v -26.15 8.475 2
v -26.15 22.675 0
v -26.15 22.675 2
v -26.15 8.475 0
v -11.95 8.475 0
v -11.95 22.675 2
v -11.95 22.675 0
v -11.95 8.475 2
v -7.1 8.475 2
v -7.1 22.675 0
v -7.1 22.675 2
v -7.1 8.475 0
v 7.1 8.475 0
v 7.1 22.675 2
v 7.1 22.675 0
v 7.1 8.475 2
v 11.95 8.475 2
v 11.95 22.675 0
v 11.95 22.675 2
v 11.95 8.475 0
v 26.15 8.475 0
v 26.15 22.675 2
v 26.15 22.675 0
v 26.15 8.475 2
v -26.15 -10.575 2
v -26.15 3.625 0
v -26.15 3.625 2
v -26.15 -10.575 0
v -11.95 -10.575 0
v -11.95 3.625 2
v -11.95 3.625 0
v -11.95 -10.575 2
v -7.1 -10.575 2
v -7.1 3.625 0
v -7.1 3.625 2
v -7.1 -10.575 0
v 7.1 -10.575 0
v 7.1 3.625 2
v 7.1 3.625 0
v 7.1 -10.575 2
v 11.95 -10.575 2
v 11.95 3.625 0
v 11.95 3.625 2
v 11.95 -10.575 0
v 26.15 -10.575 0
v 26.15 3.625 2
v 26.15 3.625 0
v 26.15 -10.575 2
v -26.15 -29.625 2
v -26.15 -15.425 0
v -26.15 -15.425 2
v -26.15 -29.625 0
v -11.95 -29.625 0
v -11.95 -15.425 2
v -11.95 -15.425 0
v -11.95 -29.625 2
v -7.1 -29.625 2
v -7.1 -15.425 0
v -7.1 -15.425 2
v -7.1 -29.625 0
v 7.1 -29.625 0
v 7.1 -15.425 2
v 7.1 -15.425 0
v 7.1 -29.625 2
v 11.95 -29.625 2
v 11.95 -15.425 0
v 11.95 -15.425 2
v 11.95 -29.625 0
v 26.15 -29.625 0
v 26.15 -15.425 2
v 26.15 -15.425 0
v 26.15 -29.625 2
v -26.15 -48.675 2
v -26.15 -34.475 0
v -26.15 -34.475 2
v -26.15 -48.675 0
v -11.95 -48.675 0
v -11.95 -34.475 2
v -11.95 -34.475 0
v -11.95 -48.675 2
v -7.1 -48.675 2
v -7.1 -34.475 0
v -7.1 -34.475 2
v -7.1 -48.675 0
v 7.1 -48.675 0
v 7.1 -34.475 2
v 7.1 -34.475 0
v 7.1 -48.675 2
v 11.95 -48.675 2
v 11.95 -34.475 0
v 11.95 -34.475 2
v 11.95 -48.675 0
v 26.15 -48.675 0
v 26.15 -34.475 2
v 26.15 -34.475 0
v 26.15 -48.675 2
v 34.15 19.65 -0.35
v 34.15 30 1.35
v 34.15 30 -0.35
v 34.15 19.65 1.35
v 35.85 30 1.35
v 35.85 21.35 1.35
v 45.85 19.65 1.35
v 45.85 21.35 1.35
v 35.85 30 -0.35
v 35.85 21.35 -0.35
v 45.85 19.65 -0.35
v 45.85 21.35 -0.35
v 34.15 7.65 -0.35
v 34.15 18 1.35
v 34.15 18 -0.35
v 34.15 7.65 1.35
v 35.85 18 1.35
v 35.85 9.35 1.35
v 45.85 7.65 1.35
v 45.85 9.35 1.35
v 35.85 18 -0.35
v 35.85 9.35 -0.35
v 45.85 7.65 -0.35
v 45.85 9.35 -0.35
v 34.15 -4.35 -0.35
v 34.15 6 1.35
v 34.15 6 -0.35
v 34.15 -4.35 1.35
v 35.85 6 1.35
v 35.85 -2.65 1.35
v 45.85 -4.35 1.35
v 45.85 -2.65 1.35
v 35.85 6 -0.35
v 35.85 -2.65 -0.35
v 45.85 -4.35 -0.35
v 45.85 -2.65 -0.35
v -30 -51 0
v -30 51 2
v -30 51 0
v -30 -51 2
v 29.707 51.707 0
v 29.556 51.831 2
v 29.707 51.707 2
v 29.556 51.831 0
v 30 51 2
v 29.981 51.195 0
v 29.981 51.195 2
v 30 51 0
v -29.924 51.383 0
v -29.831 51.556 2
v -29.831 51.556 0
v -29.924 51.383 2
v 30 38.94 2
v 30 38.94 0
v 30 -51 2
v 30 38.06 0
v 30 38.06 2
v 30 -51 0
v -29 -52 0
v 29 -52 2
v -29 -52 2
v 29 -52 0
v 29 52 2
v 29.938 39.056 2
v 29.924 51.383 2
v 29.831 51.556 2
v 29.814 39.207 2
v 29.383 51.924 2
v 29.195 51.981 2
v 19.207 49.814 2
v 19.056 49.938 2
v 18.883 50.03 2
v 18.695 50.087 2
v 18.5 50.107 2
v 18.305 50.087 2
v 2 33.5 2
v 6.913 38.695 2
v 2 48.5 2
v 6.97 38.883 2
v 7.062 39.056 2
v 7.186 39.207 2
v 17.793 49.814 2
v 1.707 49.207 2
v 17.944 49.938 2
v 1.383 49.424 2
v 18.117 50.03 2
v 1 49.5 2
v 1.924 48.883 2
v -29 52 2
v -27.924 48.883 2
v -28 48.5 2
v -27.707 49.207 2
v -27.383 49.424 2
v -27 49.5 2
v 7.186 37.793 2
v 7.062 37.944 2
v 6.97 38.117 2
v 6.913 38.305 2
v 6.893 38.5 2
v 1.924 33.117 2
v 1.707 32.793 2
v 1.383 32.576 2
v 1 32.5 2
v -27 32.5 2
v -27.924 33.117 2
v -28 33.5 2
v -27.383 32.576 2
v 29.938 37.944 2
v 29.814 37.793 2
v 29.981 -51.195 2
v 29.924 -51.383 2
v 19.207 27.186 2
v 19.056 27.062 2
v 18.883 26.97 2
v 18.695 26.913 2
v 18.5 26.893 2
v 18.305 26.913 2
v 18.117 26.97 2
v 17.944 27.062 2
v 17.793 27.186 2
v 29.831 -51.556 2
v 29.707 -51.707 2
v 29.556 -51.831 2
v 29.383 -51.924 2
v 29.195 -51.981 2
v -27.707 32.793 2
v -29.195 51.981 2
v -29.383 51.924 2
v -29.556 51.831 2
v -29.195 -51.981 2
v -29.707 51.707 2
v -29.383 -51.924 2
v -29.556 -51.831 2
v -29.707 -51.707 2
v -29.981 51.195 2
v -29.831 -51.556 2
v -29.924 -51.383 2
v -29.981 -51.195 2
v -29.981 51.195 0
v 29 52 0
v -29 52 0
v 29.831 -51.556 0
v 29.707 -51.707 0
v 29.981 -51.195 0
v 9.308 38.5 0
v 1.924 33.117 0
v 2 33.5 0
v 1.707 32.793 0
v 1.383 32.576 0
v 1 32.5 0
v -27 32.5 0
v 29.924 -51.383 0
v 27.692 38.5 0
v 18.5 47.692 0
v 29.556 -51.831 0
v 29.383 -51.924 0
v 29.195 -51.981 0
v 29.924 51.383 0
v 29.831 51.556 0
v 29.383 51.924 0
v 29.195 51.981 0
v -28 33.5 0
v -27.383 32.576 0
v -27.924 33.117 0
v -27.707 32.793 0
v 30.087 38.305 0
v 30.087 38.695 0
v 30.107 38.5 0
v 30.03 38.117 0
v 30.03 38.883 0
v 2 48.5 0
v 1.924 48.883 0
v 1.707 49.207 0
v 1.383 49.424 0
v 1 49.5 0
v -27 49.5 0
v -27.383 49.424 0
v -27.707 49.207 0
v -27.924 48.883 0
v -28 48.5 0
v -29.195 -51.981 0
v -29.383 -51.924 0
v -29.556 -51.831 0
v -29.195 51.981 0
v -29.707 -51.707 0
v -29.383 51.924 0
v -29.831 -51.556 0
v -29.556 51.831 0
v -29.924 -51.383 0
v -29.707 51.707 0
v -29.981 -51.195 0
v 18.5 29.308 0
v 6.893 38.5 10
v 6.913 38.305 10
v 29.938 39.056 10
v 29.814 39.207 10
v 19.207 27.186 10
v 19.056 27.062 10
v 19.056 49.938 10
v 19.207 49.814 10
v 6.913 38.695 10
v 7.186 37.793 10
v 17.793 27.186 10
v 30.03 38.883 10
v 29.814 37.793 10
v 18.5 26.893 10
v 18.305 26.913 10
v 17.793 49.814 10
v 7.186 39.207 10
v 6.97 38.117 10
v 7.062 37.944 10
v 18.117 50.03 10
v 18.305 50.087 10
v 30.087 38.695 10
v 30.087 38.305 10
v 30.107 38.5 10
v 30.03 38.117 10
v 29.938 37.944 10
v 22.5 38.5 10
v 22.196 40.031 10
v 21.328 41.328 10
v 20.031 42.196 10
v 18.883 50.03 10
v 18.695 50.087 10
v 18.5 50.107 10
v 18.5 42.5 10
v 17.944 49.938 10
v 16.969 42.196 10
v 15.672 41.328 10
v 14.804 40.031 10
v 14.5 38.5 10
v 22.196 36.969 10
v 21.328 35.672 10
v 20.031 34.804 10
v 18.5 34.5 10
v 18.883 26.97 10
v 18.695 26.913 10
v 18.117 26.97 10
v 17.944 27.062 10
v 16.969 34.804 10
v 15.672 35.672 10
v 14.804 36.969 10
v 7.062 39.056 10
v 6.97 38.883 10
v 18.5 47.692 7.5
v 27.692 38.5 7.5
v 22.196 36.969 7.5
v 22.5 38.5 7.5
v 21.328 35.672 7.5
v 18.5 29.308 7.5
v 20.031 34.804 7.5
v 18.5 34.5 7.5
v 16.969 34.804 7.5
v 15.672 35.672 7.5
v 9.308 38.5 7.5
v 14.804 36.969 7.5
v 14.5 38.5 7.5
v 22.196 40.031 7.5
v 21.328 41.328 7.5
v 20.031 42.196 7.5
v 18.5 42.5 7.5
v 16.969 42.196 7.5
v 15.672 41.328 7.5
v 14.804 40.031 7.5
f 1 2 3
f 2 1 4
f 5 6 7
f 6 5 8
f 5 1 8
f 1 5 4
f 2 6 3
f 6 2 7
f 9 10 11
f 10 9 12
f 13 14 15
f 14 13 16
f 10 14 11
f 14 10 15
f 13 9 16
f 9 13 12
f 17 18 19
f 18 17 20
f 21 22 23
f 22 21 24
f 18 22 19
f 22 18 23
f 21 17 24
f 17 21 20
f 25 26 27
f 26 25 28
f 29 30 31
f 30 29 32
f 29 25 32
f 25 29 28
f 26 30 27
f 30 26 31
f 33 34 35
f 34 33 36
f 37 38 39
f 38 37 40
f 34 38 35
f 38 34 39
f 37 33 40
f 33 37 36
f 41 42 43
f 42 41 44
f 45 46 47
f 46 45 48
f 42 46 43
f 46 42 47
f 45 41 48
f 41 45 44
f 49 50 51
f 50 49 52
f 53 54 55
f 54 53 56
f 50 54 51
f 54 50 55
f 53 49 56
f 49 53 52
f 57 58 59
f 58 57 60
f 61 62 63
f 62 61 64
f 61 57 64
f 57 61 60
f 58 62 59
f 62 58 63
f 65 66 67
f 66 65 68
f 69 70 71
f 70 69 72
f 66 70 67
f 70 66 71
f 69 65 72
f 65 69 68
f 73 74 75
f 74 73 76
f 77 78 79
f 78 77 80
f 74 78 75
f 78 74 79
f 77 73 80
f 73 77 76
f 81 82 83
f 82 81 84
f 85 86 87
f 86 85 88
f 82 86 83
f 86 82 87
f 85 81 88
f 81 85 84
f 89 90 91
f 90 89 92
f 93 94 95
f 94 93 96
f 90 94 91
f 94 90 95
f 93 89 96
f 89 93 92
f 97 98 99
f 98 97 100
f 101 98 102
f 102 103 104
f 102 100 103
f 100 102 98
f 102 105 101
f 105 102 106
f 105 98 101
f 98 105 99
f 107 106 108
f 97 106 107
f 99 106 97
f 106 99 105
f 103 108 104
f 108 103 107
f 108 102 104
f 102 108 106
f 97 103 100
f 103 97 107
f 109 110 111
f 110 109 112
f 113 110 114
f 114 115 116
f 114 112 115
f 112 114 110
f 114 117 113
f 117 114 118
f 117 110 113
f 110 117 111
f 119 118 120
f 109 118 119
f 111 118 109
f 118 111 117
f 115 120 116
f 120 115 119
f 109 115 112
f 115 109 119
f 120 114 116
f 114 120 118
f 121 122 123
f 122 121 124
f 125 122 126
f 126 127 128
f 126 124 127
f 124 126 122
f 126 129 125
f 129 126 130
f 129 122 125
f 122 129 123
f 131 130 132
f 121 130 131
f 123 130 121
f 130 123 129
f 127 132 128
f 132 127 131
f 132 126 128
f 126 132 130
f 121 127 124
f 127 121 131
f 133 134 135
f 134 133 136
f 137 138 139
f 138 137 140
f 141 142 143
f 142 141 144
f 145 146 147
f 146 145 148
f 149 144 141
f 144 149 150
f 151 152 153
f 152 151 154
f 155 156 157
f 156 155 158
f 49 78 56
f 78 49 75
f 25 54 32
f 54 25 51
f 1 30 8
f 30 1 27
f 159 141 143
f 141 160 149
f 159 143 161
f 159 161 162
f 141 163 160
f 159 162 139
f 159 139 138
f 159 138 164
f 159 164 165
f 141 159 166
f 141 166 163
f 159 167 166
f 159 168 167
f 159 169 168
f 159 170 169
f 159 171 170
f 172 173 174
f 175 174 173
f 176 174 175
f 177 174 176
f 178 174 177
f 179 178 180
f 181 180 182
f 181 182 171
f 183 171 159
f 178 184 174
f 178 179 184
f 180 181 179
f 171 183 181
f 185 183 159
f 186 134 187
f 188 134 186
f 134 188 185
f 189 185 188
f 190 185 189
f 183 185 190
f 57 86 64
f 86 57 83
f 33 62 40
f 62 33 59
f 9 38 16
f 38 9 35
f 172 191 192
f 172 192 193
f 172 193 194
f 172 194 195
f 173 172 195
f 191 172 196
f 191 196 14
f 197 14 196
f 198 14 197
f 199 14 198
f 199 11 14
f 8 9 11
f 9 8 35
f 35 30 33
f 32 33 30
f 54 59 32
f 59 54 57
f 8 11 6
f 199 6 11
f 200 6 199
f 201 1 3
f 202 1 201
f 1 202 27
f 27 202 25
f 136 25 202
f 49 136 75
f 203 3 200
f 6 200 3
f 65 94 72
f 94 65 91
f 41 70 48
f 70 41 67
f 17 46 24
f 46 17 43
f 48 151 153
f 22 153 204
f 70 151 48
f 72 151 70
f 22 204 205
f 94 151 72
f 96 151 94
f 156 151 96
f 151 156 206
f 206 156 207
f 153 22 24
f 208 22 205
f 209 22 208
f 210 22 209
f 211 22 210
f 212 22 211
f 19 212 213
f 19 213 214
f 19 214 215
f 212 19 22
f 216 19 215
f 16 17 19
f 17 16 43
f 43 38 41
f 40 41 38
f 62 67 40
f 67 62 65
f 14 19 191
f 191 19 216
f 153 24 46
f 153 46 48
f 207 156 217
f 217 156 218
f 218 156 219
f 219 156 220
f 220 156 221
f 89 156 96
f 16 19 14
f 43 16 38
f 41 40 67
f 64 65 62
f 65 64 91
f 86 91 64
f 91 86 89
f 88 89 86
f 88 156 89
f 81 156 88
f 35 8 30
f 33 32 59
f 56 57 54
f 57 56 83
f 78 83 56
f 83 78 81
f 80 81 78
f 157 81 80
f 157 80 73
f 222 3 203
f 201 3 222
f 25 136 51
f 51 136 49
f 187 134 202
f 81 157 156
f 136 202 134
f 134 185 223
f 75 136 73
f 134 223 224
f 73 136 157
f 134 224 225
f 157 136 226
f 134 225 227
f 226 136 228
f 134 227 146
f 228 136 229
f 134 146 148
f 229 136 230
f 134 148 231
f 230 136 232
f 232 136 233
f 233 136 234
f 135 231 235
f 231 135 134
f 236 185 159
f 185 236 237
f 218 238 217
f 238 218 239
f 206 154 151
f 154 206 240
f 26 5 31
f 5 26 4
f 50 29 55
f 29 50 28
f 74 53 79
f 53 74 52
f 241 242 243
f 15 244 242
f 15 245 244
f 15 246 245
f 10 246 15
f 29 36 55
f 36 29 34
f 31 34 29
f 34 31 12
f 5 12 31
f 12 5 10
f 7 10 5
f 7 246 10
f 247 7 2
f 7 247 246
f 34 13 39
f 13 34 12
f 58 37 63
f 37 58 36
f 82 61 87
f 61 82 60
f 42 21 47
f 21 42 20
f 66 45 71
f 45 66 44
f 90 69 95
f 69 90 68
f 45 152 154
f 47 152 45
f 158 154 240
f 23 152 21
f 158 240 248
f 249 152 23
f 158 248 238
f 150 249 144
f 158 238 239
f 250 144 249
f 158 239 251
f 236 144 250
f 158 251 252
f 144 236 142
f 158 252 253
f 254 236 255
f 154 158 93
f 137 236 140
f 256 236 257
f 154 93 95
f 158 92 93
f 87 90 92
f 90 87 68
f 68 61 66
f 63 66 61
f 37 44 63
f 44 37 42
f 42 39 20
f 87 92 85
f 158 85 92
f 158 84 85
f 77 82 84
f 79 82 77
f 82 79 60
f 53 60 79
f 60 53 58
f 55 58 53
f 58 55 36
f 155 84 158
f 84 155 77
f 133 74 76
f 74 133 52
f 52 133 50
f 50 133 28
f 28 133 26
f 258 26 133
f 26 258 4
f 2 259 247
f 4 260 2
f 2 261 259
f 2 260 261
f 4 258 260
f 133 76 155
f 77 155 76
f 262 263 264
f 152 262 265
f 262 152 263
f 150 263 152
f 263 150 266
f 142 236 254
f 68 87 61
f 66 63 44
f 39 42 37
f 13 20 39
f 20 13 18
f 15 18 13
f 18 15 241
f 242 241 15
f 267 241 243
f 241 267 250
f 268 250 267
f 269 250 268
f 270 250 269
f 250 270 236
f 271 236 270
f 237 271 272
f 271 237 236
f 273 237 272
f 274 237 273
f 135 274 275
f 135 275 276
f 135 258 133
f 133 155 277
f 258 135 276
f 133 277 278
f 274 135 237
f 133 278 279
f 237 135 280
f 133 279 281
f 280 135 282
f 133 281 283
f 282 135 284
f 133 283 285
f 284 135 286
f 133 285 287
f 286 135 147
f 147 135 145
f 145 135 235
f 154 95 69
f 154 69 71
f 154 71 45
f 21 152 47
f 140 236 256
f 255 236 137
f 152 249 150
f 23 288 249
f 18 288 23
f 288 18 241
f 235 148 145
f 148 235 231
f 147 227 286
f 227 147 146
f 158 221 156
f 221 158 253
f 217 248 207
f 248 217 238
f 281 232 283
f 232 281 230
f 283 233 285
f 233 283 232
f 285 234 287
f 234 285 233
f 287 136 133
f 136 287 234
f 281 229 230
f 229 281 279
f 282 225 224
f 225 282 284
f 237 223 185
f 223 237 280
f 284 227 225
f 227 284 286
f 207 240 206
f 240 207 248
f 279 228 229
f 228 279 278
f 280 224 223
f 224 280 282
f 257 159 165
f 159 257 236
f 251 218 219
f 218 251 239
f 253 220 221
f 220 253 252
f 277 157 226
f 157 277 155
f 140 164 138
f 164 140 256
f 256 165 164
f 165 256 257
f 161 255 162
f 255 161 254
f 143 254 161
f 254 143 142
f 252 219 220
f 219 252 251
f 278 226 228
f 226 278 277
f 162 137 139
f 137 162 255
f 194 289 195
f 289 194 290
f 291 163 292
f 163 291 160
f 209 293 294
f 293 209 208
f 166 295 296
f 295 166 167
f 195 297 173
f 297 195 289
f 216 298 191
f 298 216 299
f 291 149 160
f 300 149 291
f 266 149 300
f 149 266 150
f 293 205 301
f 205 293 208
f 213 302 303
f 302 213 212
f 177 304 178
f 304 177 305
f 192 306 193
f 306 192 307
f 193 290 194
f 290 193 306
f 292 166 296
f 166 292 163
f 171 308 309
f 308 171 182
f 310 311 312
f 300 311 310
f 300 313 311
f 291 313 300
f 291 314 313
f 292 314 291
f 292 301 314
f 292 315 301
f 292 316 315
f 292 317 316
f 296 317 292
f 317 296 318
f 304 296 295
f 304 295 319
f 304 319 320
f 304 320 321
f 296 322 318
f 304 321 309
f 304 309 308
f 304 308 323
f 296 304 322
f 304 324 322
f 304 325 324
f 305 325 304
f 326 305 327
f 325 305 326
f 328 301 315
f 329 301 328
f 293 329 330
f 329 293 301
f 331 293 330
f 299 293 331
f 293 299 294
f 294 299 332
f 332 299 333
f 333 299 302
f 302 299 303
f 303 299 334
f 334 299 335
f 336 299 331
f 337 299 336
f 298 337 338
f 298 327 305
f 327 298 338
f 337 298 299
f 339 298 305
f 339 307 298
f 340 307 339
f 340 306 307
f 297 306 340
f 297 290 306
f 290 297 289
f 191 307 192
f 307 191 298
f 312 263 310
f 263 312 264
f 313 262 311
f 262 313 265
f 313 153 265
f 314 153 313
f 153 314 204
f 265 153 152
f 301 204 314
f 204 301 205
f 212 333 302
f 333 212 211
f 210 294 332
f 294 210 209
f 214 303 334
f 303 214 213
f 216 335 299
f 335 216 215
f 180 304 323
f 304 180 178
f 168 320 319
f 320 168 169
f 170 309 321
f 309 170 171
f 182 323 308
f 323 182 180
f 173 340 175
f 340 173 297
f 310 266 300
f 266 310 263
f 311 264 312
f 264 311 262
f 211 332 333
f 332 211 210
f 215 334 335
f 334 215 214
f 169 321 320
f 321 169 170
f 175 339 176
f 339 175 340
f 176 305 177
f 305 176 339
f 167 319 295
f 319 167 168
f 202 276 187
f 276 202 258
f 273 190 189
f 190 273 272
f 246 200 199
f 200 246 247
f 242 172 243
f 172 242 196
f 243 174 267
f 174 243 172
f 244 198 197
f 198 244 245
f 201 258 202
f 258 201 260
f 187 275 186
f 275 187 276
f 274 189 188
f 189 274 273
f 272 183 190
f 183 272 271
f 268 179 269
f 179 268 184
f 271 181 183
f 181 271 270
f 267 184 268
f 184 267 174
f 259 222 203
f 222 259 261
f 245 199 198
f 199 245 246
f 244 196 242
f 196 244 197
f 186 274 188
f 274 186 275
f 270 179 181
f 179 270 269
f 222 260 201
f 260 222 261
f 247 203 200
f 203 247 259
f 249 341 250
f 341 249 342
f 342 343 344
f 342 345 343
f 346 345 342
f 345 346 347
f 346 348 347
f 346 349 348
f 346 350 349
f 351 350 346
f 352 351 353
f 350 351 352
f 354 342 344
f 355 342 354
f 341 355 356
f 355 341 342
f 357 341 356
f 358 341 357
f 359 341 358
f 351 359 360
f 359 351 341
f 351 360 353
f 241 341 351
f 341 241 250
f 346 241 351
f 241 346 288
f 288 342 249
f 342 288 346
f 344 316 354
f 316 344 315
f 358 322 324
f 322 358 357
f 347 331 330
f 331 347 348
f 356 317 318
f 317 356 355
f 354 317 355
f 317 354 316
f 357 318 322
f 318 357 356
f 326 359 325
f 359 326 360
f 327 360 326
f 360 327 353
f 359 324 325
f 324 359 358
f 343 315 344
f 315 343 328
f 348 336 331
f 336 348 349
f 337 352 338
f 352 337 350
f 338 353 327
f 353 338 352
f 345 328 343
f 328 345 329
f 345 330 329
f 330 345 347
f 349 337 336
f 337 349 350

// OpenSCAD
// MacroPad RP2040 Top Cover
// Parametric design for Adafruit MacroPad RP2040 keyboard controller
// Author: Generated for CircuitPython EVM Controller project
// License: MIT

// Cheatsheet: https://openscad.org/cheatsheet/index.html?version=2021.01

// =============================================================================
// PARAMETERS - Easy to modify for different requirements
// =============================================================================

// RP2040 PCB parameters
pcb_length = 105;          // RP2040 PCB length (mm)
pcb_width = 60;            // RP2040 PCB width (mm)
pcb_thickness = 1.6;       // Standard PCB thickness (mm)
pcb_clearance = 1;         // Space around PCB (mm)
pcb_height_clearance = 8;  // Space above PCB for components (mm)

// Overall cover dimensions
cover_length = 60;         // Total length of cover (mm)
cover_width = 105 - 1;   // Total width of cover (mm)  
cover_thickness = 2;       // Thickness of top plate (mm)
corner_radius = 1;         // Rounded corner radius (mm)

// Key switch parameters (Cherry MX compatible)
key_switch_size = 14;      // Square hole size for key switches (mm)
key_switch_spacing = 19.05; // Center-to-center spacing (0.75" standard)
key_rows = 4;              // Number of rows
key_cols = 3;              // Number of columns

// Key switch grid positioning (relative to cover center)
keys_offset_x = 0;         // X offset of key grid center
keys_offset_y = -13;     // Y offset of key grid center (negative = toward bottom)

// LCD/OLED display parameters
lcd_width = 30;            // Width of LCD cutout (mm)
lcd_height = 17;           // Height of LCD cutout (mm)
lcd_corner_radius = 1;     // Corner radius for LCD hole
lcd_offset_x = -13;        // X position relative to center
lcd_offset_y = 41;         // Y position relative to center (positive = toward top)

// Rotary encoder parameters and relative to shaft center
encoder_shaft_diameter = 6;
encoder_size = 13;         // Square hole size for encoder + 1 mm space(mm)
encoder_offset_x = 18.5;   // X position relative to center
encoder_offset_y = 38.5;   // Y position relative to center
encoder_shaft_z = 10;      // Encoder shaft height
encoder_shaft_clearance = 2; // General clearance for 3D printing (mm)

shaft_wall_width= 2;       // 
shaft_corner_radius = 1;   // Corner radius for encoder hole

// Mounting and clearance
wall_thickness = 2;        // Wall thickness for sides (if adding later)
clearance = 0.2;           // General clearance for 3D printing (mm)

// Cover support lips
support_lip = [3, 4, 1];    // Lightly clicks cover into case

// Cover support strip
support_strip_z = 1.7;
support_strip_x = [support_strip_z, 10, support_strip_z];  // Support strip to prevent top cover movement when touched
support_strip_y = [11.7, support_strip_z, support_strip_z];

// =============================================================================
// MAIN OBJECT
// =============================================================================

difference() {
        
    // Base cover plate
    base_cover();
    
    // Cut out holes for key switches
    key_switch_holes();
    
    // Cut out hole for LCD/OLED
    lcd_hole();
    
    // Cut out hole for rotary encoder
    encoder_shaft_hole();                        

    // Cut out encoder shaft hole
    encoder_round_hole();
        
}

// Optional: Show key switch positions for reference (comment out for final print)
// %key_switch_positions(); // The % makes it transparent/reference only

// =============================================================================
// MODULES (Functions)
// =============================================================================

// Create the base cover plate with rounded corners
module base_cover() {
    
    union() {
        // Using hull() with corner cylinders to create rounded rectangle
        hull() {
            // Four corner cylinders to create rounded rectangle
            translate([-(cover_length/2 - corner_radius), -(cover_width/2 - corner_radius), 0])
                cylinder(h = cover_thickness, r = corner_radius, $fn = 32);
            
            translate([+(cover_length/2 - corner_radius), -(cover_width/2 - corner_radius), 0])
                cylinder(h = cover_thickness, r = corner_radius, $fn = 32);
            
            translate([+(cover_length/2 - corner_radius), +(cover_width/2 - corner_radius), 0])
                cylinder(h = cover_thickness, r = corner_radius, $fn = 32);
            
            translate([-(cover_length/2 - corner_radius), +(cover_width/2 - corner_radius), 0])
                cylinder(h = cover_thickness, r = corner_radius, $fn = 32);
        }
        
        // Wrap the open encoder shaft
        encoder_shaft_wrap();                

        // Place support strip below case cover 
        cover_support_strip();
        
    }
}

// Create all key switch holes in a 3x4 matrix
module key_switch_holes() {
    // Calculate starting position for grid (top-left key)
    start_x = keys_offset_x - (key_switch_spacing * (key_cols - 1) / 2);
    start_y = keys_offset_y + (key_switch_spacing * (key_rows - 1) / 2);
    
    // Create grid of holes
    for (row = [0 : key_rows - 1]) {
        for (col = [0 : key_cols - 1]) {
            translate([
                start_x + (col * key_switch_spacing),
                start_y - (row * key_switch_spacing),
                -0.5  // Extend slightly below surface for clean cut
            ]) {
                // Square hole for key switch
                cube([
                    key_switch_size + clearance,
                    key_switch_size + clearance,
                    cover_thickness + 5
                ], center = true);
            }
        }
    }
}

// Create LCD/OLED display hole
module lcd_hole() {
    translate([lcd_offset_x, lcd_offset_y, -0.5]) {
        // Rounded rectangle hole for LCD
        hull() {
            // Four corner cylinders for rounded rectangle
            translate([-(lcd_width/2 - lcd_corner_radius), -(lcd_height/2 - lcd_corner_radius), 0])
                cylinder(h = cover_thickness + 1, r = lcd_corner_radius, $fn = 16);
            
            translate([+(lcd_width/2 - lcd_corner_radius), -(lcd_height/2 - lcd_corner_radius), 0])
                cylinder(h = cover_thickness + 1, r = lcd_corner_radius, $fn = 16);
            
            translate([+(lcd_width/2 - lcd_corner_radius), +(lcd_height/2 - lcd_corner_radius), 0])
                cylinder(h = cover_thickness + 1, r = lcd_corner_radius, $fn = 16);
            
            translate([-(lcd_width/2 - lcd_corner_radius), +(lcd_height/2 - lcd_corner_radius), 0])
                cylinder(h = cover_thickness + 1, r = lcd_corner_radius, $fn = 16);
        }
    }
}


// Reference module to show key switch positions (for design verification)
module key_switch_positions() {
    // Calculate starting position for grid
    start_x = keys_offset_x - (key_switch_spacing * (key_cols - 1) / 2);
    start_y = keys_offset_y + (key_switch_spacing * (key_rows - 1) / 2);
    
    // Show key positions with small cylinders
    for (row = [0 : key_rows - 1]) {
        for (col = [0 : key_cols - 1]) {
            translate([
                start_x + (col * key_switch_spacing),
                start_y - (row * key_switch_spacing),
                cover_thickness
            ]) {
                cylinder(h = 2, r = 1, $fn = 8);
                
                // Optional: Add text labels for key numbers
                translate([0, 0, 2]) {
                    linear_extrude(height = 0.5) {
                        text(
                            str(row * key_cols + col), 
                            size = 3, 
                            halign = "center", 
                            valign = "center"
                        );
                    }
                }
            }
        }
    }
}

// Create rotary encoder hole through cover base and shaft cibe
module encoder_shaft_wrap() {
    
    encoder_z = encoder_shaft_z - shaft_wall_width;  // 2mm Shaft top cover
    
    translate([encoder_offset_x, encoder_offset_y, 0]) {
        // Square hole with slightly rounded corners for encoder
        rotate(45) hull() {
            // Four corner cylinders for rounded square
            translate([+(encoder_size/2 + shaft_wall_width - shaft_corner_radius), -(encoder_size/2 + shaft_wall_width - shaft_corner_radius), 0])
                cylinder(h = cover_thickness + encoder_z, r = shaft_corner_radius, $fn = 32);
            
            translate([-(encoder_size/2 + shaft_wall_width - shaft_corner_radius), -(encoder_size/2 + shaft_wall_width - shaft_corner_radius), 0])
                cylinder(h = cover_thickness + encoder_z, r = shaft_corner_radius, $fn = 32);
            
            translate([+(encoder_size/2 + shaft_wall_width - shaft_corner_radius), (encoder_size/2 + shaft_wall_width - shaft_corner_radius), 0])
                cylinder(h = cover_thickness + encoder_z, r = shaft_corner_radius, $fn = 32);
            
            translate([-(encoder_size/2 + shaft_wall_width - shaft_corner_radius), (encoder_size/2 + shaft_wall_width - shaft_corner_radius), 0])
                cylinder(h = cover_thickness + encoder_z, r = shaft_corner_radius, $fn = 32);
        }
    }
}


// Create a wrapper around encoder sides starting at cover base
module encoder_shaft_hole() {
    encoder_z = encoder_shaft_z - shaft_wall_width;  // 2mm Shaft top cover
    
    color("red") translate([encoder_offset_x, encoder_offset_y, encoder_z / 2 - 0.5]) {
        // Square hole with slightly rounded corners for encoder
        rotate(45) 
        cube([encoder_size,encoder_size, encoder_z],center = true);
    }    
}

// Create Encoder 6mm Shaft through hole
module encoder_round_hole() {
    translate([encoder_offset_x, encoder_offset_y, -0.5]) {
        // Through hole for encoder shaft
        cylinder(
            h = encoder_shaft_z + 2, 
            d = encoder_shaft_diameter + encoder_shaft_clearance, 
            $fn = 16
        );        
    }
}

// Create small PCB lip to lock top plate in on the left and right
module cover_left_lip() {
    // Position Reset hole on the side wall
        color ("red") translate([
        -(cover_length/2 - 1), 1, 0.5]) {
            cube(support_lip, center = true);
        }
}

// Create small PCB lip to lock top plate in on the left and right
module cover_right_lip() {
    // Position Reset hole on the side wall
    color ("red") translate([
        (cover_length/2 - 1), 1, 0.5]) {
            cube(support_lip, center = true);
        }
}


// Create small PCB lip to lock top plate in on the left and right
module cover_support_strip() {

    // Use as manual stoppers to prevent case movement when pressed
    translate([cover_length/2 + 5, 25, 0.5])
        cube(support_strip_x, center = true);
    translate([cover_length/2 + 10, 20.5, 0.5])
        cube(support_strip_y, center=true);

    // Use as manual stoppers to prevent case movement when pressed
    translate([cover_length/2 + 5, 13, 0.5])
        cube(support_strip_x, center = true);
    translate([cover_length/2 + 10, 8.5, 0.5])
        cube(support_strip_y, center=true);

    // Use as manual stoppers to prevent case movement when pressed
    translate([cover_length/2 + 5, 1, 0.5])
        cube(support_strip_x, center = true);
    translate([cover_length/2 + 10, -3.5, 0.5])
        cube(support_strip_y, center=true);
    
}


// =============================================================================
// ASSEMBLY NOTES
// =============================================================================
